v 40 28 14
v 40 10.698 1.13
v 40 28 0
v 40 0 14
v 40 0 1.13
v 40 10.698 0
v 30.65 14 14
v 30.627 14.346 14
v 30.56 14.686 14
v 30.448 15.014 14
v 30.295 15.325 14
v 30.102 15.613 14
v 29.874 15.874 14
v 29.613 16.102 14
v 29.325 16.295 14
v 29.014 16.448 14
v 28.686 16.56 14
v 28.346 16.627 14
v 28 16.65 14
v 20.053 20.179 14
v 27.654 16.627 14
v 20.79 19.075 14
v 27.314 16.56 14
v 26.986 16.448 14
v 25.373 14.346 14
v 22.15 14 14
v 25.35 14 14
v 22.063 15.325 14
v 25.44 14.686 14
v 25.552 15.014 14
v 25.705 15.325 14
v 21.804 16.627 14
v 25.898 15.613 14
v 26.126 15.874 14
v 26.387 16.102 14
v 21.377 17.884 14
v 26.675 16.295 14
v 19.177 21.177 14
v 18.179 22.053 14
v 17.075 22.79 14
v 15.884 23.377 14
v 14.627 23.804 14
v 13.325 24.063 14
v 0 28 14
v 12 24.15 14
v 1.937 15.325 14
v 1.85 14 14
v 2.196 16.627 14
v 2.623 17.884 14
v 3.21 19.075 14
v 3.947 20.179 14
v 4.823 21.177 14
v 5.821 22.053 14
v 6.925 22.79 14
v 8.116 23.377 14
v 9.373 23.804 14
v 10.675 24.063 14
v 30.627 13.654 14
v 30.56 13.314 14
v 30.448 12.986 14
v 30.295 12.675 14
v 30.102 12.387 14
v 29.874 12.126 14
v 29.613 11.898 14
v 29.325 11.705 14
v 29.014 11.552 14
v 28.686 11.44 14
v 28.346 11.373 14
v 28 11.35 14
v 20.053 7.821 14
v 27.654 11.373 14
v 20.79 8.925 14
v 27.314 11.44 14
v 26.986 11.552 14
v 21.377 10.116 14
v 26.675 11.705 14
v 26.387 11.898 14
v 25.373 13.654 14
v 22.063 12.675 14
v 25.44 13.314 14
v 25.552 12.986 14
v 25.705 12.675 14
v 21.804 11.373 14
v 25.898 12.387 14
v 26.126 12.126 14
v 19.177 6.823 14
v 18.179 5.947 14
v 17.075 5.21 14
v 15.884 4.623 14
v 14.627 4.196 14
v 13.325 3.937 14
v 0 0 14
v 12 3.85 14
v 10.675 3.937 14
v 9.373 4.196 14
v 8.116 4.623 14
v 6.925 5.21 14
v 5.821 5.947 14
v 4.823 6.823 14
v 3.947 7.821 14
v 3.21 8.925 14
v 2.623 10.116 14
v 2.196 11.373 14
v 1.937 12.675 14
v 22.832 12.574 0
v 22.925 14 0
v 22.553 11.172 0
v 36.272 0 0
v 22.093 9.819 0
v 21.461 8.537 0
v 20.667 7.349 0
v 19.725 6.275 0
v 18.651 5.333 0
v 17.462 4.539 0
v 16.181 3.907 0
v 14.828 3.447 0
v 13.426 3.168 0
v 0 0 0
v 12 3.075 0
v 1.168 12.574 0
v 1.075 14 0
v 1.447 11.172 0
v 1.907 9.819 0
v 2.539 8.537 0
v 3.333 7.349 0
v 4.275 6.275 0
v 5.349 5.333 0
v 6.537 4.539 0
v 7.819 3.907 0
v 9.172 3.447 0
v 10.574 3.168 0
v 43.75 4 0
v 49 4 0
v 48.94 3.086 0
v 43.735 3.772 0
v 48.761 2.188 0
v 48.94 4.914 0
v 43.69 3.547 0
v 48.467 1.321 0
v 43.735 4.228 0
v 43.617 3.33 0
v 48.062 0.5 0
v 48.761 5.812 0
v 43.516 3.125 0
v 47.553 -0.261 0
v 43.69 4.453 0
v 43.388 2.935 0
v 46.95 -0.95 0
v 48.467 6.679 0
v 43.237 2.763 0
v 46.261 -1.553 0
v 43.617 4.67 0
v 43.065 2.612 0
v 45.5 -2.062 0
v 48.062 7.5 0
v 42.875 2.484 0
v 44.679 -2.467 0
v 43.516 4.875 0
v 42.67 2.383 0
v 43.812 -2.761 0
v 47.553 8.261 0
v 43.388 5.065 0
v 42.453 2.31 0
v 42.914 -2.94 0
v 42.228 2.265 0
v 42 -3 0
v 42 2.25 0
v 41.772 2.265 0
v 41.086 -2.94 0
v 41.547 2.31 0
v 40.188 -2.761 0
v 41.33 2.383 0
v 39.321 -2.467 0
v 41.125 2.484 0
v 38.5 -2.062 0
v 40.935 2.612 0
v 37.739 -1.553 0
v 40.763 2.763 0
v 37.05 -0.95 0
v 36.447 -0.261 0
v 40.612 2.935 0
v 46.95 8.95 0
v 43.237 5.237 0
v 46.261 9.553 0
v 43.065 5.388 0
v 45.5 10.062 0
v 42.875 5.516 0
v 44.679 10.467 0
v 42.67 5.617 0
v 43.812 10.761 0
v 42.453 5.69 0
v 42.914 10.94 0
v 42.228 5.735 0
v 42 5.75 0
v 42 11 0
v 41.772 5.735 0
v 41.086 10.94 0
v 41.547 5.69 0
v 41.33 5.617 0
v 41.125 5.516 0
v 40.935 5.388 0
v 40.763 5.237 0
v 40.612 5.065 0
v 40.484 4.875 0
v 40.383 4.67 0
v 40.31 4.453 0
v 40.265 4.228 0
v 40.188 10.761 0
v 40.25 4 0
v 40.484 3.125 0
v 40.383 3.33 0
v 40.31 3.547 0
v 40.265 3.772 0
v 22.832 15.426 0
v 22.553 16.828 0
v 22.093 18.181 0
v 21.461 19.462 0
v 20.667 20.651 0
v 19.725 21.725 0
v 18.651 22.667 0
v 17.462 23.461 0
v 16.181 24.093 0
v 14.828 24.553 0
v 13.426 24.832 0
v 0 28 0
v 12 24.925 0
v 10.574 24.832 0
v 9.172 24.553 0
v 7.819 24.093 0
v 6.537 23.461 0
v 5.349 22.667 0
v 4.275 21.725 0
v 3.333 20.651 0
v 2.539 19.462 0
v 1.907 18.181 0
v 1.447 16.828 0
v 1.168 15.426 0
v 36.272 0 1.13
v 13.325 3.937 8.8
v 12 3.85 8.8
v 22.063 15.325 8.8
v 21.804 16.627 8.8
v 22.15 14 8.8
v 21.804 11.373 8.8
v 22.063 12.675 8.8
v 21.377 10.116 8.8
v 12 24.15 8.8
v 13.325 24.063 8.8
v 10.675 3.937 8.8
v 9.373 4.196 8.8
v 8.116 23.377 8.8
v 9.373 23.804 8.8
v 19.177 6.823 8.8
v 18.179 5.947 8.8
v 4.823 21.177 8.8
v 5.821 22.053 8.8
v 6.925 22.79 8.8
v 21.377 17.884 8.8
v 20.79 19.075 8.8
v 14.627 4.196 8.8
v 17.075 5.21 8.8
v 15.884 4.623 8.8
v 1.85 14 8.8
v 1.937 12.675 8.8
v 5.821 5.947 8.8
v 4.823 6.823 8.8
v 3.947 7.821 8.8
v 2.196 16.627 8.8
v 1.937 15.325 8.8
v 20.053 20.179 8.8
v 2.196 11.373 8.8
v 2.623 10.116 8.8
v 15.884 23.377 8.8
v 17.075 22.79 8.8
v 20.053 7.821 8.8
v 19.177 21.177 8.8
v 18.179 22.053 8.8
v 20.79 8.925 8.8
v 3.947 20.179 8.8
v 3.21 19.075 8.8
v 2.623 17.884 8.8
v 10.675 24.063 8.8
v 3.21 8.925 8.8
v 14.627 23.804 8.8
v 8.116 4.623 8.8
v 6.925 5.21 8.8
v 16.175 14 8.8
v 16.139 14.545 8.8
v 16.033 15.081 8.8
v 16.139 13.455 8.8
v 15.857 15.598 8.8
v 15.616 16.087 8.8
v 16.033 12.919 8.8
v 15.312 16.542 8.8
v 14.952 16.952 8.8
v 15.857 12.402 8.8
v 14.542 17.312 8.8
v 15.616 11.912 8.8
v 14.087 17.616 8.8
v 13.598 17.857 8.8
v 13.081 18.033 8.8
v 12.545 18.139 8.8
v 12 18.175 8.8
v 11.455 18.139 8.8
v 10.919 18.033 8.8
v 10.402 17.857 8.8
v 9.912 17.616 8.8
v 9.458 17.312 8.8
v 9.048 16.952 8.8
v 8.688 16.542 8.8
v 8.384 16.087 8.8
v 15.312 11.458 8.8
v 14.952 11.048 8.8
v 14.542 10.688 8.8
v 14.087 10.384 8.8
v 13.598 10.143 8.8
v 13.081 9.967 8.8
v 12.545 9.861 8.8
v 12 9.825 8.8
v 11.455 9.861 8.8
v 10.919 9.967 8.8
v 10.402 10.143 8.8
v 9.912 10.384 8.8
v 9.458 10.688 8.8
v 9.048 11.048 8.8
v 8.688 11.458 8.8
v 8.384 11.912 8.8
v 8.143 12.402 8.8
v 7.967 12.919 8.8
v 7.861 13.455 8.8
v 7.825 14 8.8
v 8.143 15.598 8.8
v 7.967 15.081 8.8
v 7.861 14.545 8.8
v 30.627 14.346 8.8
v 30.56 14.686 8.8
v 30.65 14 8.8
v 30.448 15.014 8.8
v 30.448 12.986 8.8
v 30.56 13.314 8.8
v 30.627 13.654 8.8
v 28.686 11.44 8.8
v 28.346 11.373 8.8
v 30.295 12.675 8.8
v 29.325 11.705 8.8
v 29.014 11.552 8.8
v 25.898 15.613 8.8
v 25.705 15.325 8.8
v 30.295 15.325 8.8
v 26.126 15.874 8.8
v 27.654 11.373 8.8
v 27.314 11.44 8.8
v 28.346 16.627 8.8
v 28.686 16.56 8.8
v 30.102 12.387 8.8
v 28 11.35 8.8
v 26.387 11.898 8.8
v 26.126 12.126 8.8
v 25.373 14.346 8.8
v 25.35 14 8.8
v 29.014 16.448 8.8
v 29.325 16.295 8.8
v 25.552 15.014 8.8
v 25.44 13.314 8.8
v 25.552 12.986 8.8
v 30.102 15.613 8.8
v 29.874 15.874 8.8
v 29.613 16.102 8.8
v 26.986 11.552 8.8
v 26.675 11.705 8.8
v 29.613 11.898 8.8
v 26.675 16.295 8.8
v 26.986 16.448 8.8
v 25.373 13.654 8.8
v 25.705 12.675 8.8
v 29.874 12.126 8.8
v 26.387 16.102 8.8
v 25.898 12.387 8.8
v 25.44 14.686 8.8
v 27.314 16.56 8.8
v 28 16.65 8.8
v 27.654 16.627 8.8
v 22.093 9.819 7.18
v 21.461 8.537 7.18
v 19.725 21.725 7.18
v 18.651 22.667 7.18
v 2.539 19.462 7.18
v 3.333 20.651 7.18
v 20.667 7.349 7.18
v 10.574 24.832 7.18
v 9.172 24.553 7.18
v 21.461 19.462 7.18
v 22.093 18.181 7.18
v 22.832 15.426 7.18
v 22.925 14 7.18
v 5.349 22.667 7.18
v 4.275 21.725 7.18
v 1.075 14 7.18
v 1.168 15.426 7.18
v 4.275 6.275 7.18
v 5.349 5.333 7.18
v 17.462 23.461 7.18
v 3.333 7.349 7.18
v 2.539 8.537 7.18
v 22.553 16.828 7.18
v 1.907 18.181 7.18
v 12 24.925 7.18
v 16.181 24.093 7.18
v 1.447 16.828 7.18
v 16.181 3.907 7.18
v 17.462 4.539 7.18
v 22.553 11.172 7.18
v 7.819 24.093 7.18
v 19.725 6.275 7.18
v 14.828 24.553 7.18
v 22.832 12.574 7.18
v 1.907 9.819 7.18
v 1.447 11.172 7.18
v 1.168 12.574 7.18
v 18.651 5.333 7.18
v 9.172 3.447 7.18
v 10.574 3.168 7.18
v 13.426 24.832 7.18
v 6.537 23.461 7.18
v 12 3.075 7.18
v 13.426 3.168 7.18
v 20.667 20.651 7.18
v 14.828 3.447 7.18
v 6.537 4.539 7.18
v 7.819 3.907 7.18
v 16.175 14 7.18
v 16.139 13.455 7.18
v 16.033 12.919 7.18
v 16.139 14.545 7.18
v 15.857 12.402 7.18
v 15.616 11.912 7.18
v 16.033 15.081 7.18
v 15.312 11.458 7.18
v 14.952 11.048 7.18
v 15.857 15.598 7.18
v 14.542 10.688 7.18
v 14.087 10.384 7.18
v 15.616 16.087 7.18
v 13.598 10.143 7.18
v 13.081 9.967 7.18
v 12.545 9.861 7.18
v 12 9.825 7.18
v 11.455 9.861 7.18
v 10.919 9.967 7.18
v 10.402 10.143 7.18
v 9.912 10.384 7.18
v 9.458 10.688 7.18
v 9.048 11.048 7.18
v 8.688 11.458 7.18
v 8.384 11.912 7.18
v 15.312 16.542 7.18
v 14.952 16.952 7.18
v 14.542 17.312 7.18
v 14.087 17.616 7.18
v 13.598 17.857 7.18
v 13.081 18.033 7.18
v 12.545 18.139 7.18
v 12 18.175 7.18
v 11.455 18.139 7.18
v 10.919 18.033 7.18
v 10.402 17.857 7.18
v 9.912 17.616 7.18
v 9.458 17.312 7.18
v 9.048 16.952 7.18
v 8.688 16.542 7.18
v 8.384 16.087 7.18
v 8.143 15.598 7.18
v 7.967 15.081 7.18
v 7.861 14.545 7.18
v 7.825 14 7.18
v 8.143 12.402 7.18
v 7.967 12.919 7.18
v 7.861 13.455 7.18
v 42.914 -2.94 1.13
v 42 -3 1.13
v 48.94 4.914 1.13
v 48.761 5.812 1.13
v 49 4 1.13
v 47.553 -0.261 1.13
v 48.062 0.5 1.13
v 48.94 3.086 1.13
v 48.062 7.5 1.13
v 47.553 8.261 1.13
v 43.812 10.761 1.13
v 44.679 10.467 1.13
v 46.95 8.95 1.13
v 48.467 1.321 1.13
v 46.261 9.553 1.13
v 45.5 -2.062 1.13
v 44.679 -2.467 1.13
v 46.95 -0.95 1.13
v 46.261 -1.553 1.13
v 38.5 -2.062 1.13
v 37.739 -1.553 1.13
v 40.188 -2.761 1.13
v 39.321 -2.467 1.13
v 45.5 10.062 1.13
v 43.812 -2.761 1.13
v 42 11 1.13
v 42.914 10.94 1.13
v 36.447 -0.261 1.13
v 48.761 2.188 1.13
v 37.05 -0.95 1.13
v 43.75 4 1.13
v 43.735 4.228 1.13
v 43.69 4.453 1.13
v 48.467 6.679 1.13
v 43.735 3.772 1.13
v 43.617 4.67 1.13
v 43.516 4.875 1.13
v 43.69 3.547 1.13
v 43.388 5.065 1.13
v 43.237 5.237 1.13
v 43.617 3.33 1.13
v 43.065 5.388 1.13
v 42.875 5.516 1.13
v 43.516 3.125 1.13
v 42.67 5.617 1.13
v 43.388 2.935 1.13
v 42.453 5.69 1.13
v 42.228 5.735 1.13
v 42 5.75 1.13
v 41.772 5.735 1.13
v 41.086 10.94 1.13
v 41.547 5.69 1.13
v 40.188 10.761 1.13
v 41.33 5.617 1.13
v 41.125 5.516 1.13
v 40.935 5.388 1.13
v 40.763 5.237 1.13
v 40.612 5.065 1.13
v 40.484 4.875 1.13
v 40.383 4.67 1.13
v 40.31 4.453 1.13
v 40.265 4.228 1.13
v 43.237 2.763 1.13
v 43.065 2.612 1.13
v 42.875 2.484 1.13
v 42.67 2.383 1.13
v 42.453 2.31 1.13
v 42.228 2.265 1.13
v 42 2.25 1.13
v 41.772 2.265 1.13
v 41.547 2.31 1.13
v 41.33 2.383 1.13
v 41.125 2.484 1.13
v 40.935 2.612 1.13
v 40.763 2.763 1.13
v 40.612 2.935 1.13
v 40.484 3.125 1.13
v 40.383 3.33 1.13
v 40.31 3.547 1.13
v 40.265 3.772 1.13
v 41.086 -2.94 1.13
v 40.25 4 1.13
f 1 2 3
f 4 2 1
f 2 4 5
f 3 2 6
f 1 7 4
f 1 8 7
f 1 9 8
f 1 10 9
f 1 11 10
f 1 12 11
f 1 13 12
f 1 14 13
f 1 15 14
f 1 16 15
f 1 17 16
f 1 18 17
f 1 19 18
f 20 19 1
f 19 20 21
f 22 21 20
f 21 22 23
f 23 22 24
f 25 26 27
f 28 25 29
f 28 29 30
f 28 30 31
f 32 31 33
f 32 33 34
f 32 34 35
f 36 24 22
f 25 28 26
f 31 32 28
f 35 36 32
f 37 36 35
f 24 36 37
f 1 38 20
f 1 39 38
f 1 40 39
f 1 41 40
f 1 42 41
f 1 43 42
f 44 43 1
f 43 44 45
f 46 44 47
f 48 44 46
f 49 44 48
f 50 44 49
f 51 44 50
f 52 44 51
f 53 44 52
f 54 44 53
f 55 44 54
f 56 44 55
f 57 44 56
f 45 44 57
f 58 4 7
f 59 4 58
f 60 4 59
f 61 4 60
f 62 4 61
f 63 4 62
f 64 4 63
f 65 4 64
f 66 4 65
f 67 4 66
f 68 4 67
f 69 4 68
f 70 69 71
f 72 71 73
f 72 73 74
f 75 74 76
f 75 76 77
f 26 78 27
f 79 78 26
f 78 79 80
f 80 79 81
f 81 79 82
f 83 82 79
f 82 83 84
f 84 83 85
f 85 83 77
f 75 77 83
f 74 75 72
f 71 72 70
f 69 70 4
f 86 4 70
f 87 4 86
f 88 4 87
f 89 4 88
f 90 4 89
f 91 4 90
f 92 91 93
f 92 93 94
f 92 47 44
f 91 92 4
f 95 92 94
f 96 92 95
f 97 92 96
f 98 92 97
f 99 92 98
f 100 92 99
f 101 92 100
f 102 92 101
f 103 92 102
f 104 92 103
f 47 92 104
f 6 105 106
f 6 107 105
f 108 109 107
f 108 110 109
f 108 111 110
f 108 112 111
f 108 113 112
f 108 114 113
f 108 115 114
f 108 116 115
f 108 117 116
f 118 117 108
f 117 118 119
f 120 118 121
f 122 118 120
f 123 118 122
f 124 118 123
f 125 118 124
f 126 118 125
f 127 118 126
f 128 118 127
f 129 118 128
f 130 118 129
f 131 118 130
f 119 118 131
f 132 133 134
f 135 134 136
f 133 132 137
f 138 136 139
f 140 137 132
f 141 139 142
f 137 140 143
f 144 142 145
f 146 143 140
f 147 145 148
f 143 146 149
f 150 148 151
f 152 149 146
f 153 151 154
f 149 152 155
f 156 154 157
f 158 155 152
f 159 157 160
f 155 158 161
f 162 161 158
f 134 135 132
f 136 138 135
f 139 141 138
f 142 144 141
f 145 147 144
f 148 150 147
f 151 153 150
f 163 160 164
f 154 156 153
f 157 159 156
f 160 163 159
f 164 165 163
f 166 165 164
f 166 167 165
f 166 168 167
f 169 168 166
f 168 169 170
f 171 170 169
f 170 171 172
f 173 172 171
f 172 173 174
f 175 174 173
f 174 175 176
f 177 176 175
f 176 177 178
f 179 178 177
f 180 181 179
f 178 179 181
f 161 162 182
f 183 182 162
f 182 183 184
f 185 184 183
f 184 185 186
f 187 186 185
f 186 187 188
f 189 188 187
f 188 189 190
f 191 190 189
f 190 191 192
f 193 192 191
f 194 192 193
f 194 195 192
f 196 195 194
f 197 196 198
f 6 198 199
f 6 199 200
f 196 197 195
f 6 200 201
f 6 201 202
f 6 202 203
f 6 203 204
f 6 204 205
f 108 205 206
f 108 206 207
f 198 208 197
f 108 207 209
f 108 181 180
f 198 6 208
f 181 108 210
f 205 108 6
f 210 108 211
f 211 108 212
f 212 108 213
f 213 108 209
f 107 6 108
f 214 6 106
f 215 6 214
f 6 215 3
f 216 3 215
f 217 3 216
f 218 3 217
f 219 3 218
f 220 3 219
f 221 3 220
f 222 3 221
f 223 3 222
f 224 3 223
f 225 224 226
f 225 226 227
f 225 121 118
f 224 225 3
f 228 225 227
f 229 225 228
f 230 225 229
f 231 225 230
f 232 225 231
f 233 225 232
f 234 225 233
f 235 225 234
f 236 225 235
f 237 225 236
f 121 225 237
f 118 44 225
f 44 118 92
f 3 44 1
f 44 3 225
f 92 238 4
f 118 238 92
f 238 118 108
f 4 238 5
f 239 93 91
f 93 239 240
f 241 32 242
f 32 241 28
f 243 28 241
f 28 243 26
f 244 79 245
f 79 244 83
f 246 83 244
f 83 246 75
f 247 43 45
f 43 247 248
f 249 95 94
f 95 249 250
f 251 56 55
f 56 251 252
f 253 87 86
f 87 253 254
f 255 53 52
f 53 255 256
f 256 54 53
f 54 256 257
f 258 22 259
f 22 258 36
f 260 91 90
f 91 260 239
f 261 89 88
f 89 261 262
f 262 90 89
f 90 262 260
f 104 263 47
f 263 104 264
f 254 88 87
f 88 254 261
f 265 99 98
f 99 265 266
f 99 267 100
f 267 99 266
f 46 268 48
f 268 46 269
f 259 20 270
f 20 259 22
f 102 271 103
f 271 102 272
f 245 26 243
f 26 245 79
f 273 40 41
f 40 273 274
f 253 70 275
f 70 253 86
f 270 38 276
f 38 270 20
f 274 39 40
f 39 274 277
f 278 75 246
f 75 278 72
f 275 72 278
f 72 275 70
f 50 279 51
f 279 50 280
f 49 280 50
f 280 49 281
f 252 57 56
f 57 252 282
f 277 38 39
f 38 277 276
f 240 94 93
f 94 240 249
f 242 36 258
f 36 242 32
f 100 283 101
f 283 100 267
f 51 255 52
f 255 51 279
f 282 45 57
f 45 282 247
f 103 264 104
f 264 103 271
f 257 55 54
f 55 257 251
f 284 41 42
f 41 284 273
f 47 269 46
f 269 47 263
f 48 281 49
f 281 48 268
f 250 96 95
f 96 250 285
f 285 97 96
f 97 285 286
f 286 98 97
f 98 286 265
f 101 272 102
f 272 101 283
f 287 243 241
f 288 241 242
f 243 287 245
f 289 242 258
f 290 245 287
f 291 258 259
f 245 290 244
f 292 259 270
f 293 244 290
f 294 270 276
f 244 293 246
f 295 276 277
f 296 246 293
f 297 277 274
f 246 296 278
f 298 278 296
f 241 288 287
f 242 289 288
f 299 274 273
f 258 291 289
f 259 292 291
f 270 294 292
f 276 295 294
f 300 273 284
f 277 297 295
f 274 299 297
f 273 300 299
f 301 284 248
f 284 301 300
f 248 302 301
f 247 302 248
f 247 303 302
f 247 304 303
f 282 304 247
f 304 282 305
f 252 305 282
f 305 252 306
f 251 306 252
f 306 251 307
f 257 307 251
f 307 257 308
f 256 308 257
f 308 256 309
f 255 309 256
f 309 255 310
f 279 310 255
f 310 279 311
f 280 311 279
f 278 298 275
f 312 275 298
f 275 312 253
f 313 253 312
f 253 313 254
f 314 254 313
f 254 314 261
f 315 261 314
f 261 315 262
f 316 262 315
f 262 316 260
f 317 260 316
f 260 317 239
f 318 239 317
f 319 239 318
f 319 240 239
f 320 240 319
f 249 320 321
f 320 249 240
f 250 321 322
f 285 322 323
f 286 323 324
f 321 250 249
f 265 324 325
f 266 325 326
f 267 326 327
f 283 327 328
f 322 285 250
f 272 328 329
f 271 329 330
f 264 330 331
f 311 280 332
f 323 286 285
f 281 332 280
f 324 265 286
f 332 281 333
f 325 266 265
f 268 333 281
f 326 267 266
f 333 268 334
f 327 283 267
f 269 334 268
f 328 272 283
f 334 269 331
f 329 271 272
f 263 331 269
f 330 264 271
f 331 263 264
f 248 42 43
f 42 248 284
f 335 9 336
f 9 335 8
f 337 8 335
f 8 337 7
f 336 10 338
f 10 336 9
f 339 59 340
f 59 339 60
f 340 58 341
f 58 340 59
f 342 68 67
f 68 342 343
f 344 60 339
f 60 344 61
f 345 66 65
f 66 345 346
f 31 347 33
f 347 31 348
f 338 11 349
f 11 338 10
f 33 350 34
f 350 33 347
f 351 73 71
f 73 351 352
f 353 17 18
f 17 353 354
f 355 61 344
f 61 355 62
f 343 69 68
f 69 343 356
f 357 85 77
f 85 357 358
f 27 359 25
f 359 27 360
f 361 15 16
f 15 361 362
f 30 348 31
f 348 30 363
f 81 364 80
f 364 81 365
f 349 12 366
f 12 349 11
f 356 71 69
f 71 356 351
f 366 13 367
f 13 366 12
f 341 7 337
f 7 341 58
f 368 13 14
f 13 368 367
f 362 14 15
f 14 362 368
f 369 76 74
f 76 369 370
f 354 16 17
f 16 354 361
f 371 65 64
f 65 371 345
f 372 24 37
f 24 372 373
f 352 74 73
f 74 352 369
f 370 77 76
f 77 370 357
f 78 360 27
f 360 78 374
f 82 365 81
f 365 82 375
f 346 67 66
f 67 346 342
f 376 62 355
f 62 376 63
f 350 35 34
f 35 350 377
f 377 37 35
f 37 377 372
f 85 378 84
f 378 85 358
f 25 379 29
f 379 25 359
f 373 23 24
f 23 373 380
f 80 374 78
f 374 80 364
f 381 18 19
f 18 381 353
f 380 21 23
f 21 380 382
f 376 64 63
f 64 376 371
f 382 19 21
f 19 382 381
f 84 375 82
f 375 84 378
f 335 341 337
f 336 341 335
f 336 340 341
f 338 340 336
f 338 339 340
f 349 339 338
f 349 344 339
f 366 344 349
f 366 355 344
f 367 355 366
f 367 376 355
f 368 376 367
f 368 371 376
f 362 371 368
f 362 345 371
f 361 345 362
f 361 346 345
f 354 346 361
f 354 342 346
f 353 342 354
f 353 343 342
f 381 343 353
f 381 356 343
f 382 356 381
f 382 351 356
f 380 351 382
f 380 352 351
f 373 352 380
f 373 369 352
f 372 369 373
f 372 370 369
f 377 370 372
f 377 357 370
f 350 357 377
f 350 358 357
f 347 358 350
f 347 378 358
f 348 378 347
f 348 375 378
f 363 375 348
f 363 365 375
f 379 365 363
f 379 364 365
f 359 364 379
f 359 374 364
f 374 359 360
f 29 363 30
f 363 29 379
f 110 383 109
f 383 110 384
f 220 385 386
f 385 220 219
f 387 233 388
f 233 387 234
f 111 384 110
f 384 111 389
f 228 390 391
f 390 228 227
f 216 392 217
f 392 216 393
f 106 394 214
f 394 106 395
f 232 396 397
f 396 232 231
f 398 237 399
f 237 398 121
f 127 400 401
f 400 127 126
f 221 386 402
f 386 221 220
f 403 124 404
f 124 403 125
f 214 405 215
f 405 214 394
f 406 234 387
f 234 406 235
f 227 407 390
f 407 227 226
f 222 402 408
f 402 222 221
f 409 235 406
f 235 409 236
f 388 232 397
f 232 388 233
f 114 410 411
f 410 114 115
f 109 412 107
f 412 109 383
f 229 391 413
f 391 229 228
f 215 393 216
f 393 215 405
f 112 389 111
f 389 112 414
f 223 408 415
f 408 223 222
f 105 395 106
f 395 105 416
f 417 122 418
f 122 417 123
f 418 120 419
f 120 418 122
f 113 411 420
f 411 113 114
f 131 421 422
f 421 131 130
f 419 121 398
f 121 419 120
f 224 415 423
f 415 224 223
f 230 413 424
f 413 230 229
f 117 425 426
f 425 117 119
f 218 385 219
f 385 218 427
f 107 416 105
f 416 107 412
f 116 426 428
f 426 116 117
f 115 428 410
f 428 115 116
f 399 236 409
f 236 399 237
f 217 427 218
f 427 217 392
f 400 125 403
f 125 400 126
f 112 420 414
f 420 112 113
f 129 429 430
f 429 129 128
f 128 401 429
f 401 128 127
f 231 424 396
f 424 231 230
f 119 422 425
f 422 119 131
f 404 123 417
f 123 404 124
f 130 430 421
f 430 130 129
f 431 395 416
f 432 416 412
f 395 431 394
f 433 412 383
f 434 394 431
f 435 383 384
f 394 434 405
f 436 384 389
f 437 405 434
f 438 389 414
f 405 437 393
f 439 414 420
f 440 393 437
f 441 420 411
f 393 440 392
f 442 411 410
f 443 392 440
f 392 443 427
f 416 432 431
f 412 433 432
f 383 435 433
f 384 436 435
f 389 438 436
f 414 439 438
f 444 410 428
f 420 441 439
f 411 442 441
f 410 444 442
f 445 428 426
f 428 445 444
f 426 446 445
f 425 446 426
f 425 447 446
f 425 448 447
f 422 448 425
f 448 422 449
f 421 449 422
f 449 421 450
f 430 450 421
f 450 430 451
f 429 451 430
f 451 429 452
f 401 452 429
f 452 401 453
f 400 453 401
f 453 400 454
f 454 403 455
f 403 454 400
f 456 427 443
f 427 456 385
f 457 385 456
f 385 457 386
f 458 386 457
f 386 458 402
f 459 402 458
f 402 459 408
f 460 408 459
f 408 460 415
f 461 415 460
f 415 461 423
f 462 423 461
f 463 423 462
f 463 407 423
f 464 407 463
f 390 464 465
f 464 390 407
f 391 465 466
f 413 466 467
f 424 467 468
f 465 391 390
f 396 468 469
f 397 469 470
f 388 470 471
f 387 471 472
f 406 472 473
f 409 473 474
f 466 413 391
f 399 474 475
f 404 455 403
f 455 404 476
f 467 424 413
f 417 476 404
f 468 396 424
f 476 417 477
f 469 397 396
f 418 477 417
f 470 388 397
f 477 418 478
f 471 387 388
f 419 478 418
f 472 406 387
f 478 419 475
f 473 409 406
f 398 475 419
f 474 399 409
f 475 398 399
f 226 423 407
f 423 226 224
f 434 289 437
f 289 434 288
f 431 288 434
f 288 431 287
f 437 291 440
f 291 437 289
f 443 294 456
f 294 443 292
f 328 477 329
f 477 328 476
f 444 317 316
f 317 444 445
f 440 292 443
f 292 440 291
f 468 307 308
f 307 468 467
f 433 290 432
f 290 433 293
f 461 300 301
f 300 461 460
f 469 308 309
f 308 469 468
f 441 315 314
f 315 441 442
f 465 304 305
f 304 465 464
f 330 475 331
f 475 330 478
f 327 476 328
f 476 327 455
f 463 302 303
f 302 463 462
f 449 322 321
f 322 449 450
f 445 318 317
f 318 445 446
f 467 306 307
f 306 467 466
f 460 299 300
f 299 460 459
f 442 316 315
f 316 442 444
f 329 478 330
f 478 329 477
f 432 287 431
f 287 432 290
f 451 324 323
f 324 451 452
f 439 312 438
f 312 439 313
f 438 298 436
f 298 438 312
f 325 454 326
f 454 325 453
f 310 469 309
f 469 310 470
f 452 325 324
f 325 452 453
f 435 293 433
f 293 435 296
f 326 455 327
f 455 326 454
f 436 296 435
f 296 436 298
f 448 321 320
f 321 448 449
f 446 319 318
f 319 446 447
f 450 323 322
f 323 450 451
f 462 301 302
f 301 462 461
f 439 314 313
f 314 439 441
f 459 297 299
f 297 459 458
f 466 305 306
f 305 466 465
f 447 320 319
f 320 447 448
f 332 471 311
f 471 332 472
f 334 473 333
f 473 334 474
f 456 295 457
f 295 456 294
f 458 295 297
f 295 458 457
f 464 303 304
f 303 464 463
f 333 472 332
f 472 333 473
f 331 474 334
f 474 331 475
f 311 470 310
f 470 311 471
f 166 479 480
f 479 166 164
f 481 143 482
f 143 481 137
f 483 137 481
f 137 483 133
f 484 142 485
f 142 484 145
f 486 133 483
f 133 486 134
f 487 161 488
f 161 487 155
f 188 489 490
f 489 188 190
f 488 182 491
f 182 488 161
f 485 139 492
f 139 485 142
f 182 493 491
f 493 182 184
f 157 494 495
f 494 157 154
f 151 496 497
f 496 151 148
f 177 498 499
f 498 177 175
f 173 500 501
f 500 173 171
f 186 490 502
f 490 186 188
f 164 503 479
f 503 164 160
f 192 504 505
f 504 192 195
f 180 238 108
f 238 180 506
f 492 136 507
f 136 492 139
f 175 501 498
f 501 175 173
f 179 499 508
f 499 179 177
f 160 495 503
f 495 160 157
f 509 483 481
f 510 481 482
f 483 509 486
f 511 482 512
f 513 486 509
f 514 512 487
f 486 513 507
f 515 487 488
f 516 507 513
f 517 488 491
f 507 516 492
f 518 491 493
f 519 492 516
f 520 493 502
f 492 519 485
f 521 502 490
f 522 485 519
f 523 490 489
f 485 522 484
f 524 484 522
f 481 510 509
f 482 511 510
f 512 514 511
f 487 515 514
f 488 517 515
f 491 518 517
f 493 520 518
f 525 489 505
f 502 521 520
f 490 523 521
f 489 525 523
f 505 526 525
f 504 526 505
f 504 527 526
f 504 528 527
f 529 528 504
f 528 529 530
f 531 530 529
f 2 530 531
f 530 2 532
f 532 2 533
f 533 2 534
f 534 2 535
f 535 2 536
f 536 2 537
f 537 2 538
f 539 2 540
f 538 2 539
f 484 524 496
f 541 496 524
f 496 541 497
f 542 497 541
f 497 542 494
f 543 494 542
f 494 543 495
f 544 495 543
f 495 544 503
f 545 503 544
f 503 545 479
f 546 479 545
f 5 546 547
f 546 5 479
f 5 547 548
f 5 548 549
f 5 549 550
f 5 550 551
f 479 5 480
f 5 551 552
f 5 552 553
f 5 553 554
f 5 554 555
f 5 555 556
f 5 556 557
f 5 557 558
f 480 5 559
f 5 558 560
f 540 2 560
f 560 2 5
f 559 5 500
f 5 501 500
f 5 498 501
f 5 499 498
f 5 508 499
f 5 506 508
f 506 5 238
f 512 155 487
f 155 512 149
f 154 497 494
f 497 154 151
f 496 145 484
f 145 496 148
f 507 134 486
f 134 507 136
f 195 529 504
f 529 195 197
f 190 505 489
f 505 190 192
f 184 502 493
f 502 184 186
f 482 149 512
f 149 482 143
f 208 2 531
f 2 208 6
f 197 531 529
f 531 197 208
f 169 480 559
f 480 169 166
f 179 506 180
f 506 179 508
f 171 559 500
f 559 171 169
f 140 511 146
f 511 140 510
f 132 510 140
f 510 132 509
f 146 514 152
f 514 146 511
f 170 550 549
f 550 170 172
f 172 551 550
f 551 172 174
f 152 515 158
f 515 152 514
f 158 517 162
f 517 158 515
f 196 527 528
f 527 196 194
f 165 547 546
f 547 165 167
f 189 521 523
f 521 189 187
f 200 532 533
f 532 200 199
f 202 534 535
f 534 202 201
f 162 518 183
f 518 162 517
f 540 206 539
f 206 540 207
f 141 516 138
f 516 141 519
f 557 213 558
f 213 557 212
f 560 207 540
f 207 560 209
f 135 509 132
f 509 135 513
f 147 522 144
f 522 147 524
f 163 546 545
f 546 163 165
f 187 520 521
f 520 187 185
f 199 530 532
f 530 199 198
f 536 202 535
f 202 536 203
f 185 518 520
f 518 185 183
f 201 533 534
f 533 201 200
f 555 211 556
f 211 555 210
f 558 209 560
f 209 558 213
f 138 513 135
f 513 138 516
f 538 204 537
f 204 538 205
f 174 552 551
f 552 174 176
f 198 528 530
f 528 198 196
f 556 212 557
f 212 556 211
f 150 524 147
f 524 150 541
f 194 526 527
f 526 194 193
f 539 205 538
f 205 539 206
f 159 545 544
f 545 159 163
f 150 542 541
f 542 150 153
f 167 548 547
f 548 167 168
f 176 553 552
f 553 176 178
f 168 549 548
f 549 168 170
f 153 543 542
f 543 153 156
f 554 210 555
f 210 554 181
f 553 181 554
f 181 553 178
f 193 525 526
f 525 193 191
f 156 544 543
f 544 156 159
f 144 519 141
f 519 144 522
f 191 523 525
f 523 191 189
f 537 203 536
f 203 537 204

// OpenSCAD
// file: parameters.scad
// =============================================================================
// Gen-AU Stacked dual-stator mid-rotor copper-max mega - WOUND-AWARE (HARD GATE)
// ONE mid dual-face Halbach rotor | TWO wound pancake stators | 18 coils x180 t
// =============================================================================

wire_awg            = 26;
wire_od             = 0.45;
turns               = 180;      // +5 vs Gen-AR 175; 18x180x~0.116 ~ 376 m
fill                = 0.70;
layers_per_face     = 2;
wind_build_axial    = layers_per_face * wire_od * fill;   // 0.63
wind_build_radial   = 3 * wire_od * fill;                 // 0.945

coil_id_r           = 17.0;
coil_od_r           = 61.0;
span_deg            = 34.0;     // 9 stations x 40 deg
former_web          = 1.22;     // thinner vs AR 1.25
flange_t            = 0.60;
wall                = 1.2;
slot_w              = 2.4;
mount_hole          = 3.5;
tab_len             = 7.0;

former_bare_h       = former_web + 2 * flange_t;            // 2.42
coil_envelope_h     = former_bare_h + 2 * wind_build_axial; // 3.68

run_clear           = 0.50;
gap_spacer_h        = run_clear + wind_build_axial;         // 1.13
m2m                 = coil_envelope_h + 2 * run_clear;      // 4.68 per gap

coil_stations       = 9;        // per stator; x2 = 18 total
bay_r_in            = coil_id_r - 2.0 - wind_build_radial;
bay_r_out           = coil_od_r + 2.0 + wind_build_radial;
bay_span            = span_deg + 4.0;
bay_offset          = 2.0;
bay_depth           = former_bare_h + wind_build_axial;     // wound sits in bay
stator_back_web     = 2.0;
stator_thick        = bay_depth + stator_back_web;
stator_od           = 156.0;
shaft_clear_stator  = 38.0;
coil_mount_r        = 27.0;

large_pocket_d      = 20.3;
small_pocket_d      = 5.3;
pocket_h            = 5.2;
large_n             = 8;
R_large             = 39.0;     // tighter copper overlap vs AR R=39.5
R_small_inner       = 25.5;
R_small_mid         = 39.0;
R_small_outer       = 55.5;
carrier_od          = 154.0;
mid_carrier_thick   = 12.0;
hub_h               = 10.0;
hub_od              = 30.0;
rotor_b_offset_deg  = 22.5;

shaft_bore          = 8.35;
bearing_d           = 21.85;
bearing_h           = 7.2;
m3_clear            = 3.5;
bolt_r_inner        = 36.0;
bolt_n_inner        = 6;
flange_bolt_r       = 72.0;
flange_bolt_n       = 6;
brace_r             = 68.0;
brace_d             = 4.3;
brace_n             = 4;

spacer_pad_od       = 14.0;
spacer_pad_id       = m3_clear;
endbell_od          = 156.0;
endbell_thick       = 8.0;
endbell_shaft_clear = 10.0;

$fn = 64;
// main file
// Gen-AU fit coupon — magnet pockets + 608 + spacer height
include <parameters.scad>;
$fn = 48;
block_w = 40; block_d = 28; block_h = 14;
difference() {
    cube([block_w, block_d, block_h]);
    translate([12, block_d/2, block_h - pocket_h])
        cylinder(d=large_pocket_d, h=pocket_h + 0.2);
    translate([28, block_d/2, block_h - pocket_h])
        cylinder(d=small_pocket_d, h=pocket_h + 0.2);
    translate([12, block_d/2, -0.02])
        cylinder(d=bearing_d, h=bearing_h);
    translate([12, block_d/2, -0.1])
        cylinder(d=shaft_bore, h=block_h + 1);
}
translate([block_w + 2, 4, 0])
    difference() {
        cylinder(d=spacer_pad_od, h=gap_spacer_h);
        translate([0, 0, -0.1]) cylinder(d=spacer_pad_id, h=gap_spacer_h + 0.2);
    }
